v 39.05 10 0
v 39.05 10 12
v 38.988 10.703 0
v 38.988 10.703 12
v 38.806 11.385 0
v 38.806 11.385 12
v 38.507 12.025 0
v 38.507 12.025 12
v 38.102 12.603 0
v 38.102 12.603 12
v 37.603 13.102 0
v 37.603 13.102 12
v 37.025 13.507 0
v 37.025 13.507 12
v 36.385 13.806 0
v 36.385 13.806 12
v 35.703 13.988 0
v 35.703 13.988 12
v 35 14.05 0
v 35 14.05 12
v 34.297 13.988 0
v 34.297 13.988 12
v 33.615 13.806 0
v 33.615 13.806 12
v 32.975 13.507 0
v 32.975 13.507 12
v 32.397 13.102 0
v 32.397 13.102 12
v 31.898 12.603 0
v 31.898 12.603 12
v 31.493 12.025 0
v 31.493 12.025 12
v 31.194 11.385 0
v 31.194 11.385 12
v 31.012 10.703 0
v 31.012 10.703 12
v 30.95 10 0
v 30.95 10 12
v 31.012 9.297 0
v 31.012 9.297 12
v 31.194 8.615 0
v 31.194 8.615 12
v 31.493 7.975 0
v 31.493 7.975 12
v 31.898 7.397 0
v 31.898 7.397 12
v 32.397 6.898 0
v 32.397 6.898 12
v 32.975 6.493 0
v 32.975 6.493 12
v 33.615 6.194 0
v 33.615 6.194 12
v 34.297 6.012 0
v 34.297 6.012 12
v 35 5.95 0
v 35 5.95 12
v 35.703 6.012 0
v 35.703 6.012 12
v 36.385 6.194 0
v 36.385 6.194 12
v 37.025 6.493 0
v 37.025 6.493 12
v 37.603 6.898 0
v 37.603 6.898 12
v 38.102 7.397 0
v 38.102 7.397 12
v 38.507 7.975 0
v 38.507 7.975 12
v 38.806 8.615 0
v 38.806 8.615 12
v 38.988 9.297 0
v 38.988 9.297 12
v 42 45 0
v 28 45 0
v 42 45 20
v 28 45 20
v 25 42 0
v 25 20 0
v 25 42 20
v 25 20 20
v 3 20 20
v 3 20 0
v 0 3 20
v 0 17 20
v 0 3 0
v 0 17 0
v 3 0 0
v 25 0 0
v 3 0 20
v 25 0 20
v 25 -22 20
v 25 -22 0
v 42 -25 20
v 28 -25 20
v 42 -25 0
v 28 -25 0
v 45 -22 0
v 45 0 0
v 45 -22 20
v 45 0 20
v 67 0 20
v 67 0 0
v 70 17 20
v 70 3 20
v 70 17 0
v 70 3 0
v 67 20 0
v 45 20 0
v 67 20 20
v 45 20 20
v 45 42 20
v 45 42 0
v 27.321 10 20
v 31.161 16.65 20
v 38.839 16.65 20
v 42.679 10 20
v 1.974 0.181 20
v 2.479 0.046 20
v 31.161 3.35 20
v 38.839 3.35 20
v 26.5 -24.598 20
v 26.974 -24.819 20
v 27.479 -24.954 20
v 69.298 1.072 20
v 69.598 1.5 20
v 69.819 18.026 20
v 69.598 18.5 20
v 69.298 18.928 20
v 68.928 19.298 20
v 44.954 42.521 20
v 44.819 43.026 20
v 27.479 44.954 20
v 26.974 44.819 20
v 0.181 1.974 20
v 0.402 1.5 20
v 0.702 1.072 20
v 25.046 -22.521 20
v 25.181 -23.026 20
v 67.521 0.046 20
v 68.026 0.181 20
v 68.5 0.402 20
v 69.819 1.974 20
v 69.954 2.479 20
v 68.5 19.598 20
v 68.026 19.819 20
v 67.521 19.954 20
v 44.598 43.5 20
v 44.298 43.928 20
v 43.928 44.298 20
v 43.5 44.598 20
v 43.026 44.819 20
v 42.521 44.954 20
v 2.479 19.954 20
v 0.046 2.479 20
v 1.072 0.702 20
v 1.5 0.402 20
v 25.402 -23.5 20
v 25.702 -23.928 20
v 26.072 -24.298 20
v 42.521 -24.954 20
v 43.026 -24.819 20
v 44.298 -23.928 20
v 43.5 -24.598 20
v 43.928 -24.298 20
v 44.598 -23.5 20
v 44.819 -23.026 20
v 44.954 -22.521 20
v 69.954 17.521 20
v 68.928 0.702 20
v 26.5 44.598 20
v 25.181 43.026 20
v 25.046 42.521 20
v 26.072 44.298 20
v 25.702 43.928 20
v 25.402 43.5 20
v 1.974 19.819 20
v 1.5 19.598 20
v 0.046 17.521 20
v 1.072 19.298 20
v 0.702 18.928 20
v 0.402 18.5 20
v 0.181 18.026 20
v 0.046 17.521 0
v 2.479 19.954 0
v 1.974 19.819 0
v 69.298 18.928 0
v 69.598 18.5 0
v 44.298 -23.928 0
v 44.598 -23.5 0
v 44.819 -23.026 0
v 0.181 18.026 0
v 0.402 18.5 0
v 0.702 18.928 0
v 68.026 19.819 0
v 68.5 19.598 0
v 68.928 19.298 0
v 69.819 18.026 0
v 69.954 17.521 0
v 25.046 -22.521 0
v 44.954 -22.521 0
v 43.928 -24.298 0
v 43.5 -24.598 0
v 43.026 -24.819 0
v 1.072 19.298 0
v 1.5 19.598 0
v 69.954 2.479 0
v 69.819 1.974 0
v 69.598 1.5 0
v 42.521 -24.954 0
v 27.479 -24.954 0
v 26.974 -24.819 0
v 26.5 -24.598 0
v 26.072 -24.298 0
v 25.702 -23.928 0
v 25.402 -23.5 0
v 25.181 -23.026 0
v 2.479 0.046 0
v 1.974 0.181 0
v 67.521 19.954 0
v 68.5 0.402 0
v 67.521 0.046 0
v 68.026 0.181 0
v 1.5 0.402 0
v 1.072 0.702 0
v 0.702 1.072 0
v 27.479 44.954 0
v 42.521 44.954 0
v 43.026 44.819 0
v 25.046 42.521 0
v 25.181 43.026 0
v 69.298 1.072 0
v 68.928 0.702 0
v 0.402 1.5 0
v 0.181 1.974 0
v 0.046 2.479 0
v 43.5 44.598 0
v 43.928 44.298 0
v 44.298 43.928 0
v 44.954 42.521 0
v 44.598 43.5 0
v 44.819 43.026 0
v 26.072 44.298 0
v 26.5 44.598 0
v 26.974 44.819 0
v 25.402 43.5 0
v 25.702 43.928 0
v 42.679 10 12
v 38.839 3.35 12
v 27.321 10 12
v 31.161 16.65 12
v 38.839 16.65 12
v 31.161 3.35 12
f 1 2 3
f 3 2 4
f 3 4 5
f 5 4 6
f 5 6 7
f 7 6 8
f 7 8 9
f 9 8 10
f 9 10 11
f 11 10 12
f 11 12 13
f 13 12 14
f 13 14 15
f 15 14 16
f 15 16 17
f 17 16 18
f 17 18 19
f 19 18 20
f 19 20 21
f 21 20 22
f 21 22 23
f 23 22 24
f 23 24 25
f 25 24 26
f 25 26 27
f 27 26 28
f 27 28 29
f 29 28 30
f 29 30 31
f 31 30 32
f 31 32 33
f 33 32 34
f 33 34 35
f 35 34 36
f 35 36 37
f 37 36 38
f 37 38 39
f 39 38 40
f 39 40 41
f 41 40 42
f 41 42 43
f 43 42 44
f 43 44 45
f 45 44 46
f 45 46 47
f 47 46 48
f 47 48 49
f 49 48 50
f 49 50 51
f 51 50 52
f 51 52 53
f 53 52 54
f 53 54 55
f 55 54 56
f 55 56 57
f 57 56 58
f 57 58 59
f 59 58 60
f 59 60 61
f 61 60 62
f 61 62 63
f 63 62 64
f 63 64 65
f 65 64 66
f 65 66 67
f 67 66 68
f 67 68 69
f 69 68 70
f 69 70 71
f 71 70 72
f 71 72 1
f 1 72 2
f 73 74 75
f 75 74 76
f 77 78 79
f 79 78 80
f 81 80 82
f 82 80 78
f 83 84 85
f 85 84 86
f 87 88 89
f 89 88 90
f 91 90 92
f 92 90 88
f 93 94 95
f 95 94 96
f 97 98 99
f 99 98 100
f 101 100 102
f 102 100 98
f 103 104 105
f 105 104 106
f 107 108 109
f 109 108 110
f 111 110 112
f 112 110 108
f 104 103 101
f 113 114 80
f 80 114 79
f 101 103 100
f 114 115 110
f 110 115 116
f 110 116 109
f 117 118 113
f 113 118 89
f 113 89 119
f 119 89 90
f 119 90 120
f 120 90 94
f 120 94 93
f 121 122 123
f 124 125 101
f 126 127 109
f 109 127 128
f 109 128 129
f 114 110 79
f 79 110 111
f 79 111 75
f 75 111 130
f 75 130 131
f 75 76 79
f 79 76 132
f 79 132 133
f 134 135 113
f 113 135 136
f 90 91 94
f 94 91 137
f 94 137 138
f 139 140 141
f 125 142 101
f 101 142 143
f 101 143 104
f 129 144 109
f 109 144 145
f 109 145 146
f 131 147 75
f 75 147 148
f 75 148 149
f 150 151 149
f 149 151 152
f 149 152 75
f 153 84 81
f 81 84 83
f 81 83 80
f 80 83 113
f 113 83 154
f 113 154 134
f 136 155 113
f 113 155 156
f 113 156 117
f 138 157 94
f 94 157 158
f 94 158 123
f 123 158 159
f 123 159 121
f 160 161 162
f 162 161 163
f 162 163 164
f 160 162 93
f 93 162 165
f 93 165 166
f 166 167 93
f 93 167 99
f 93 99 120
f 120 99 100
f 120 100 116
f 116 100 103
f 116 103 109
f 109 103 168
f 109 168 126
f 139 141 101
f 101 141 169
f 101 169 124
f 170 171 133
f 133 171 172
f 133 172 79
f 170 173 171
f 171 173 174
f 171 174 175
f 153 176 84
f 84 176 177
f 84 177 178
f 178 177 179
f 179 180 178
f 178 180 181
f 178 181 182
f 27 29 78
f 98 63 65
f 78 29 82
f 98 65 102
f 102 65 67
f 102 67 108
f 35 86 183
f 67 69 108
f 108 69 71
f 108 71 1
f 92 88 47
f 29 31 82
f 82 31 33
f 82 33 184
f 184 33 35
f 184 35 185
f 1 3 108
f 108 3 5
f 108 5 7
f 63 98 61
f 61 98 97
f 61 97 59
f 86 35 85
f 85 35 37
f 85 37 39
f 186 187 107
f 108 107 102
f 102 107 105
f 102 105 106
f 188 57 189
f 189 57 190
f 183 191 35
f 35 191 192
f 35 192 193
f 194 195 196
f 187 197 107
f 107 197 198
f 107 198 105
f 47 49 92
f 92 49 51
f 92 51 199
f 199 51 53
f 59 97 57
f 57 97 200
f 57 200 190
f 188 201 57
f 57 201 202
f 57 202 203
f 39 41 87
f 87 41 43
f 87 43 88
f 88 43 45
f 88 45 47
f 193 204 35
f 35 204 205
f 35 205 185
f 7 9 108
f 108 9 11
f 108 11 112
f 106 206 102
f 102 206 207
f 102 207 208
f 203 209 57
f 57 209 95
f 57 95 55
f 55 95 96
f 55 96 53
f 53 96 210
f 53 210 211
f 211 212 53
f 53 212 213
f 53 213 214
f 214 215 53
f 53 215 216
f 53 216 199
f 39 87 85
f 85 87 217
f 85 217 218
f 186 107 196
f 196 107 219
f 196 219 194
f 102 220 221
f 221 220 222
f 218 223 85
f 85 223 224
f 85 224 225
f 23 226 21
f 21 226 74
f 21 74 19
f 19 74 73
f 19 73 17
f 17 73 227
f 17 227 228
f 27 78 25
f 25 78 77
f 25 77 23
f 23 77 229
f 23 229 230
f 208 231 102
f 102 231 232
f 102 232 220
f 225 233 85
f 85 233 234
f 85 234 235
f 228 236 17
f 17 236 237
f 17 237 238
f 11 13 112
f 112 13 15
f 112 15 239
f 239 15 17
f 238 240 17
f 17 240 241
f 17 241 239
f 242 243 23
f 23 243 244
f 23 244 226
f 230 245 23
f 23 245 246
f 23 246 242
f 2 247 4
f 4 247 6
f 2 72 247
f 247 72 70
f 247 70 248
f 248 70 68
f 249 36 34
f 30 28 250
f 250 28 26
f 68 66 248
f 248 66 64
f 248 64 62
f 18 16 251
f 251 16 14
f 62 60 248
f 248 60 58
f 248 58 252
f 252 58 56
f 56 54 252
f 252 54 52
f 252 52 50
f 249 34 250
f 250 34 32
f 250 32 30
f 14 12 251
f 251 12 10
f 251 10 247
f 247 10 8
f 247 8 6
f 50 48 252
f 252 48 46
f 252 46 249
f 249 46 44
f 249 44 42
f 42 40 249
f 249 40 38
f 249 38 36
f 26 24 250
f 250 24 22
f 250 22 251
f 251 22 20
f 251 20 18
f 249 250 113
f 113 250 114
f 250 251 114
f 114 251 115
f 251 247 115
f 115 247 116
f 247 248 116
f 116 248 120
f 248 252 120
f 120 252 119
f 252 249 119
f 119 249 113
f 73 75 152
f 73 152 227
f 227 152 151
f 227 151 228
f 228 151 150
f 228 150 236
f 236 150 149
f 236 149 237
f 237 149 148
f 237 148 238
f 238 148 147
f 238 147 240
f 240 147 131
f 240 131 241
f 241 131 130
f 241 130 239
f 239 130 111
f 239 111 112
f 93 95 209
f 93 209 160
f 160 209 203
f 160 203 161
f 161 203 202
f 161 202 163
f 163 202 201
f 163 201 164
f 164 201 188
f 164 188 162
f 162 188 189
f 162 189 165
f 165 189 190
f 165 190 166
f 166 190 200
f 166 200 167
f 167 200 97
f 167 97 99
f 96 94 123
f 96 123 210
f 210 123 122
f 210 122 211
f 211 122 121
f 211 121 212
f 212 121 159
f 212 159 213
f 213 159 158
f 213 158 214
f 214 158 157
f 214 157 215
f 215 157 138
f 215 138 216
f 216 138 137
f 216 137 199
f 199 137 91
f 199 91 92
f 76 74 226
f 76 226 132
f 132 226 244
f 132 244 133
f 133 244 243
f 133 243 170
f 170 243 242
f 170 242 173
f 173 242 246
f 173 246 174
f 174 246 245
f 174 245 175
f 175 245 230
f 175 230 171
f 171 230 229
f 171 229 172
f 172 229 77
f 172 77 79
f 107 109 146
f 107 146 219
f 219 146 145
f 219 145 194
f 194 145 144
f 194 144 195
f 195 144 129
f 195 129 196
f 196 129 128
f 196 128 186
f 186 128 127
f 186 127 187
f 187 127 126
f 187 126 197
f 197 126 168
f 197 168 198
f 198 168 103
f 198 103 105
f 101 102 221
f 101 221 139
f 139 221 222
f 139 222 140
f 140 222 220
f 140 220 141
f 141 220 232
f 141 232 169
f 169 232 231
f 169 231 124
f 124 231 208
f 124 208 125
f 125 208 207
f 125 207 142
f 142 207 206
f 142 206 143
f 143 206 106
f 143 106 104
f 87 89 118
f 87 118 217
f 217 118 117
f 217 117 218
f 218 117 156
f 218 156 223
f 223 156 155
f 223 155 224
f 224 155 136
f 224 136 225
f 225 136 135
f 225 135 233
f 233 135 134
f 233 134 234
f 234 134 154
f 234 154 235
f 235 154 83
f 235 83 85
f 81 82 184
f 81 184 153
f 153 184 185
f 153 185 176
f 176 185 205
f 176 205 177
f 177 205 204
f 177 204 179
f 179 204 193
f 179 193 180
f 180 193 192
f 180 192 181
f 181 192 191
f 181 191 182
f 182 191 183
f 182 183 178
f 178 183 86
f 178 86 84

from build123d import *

# Parameters (mm, degrees)
ESQUISSE1_W             = 20
ESQUISSE1_H             = 25
ESQUISSE1_H_2           = 20
ESQUISSE1_W_2           = 25
BOSS_EXTRU_1_DEPTH      = 20
ENL_V_MAT_EXTRU_1_REACH = 87.586
ESQUISSE2_R             = 4.05
ENL_V_MAT_EXTRU_3_DEPTH = 8
CONG_1_R                = 3


with BuildPart() as part:
    # Esquisse1 → Boss.-Extru.1 (new body)
    with BuildSketch(Plane.XY):
        with Locations((35, 32.5)):
            Rectangle(ESQUISSE1_W, ESQUISSE1_H)
        with Locations((35, 10)):
            Rectangle(ESQUISSE1_W, ESQUISSE1_H_2)
        with Locations((12.5, 10)):
            Rectangle(ESQUISSE1_W_2, ESQUISSE1_H_2)
        with Locations((35, -12.5)):
            Rectangle(ESQUISSE1_W, ESQUISSE1_H)
        with Locations((57.5, 10)):
            Rectangle(ESQUISSE1_W_2, ESQUISSE1_H_2)
    extrude(amount=BOSS_EXTRU_1_DEPTH)

    # Esquisse2 → Enlèv. mat.-Extru.1 (cut, up to next)
    with BuildSketch(Plane.XY.offset(20), mode=Mode.PRIVATE) as enl_v_mat_extru_1_sk1:
        with Locations((35, 10)):
            Circle(ESQUISSE2_R)
    enl_v_mat_extru_1_tool1 = extrude(enl_v_mat_extru_1_sk1.sketch, amount=-ENL_V_MAT_EXTRU_1_REACH, mode=Mode.PRIVATE) & part.part
    add(enl_v_mat_extru_1_tool1.solids().sort_by_distance((35, 10, 20))[0], mode=Mode.SUBTRACT)

    # Esquisse4 → Enlèv. mat.-Extru.3 (cut)
    with BuildSketch(Plane.XY.offset(20)):
        Polygon((27.32124142, 10), (31.16062071, 3.35), (38.83937929, 3.35), (42.67875858, 10), (38.83937929, 16.65), (31.16062071, 16.65), align=None)
    extrude(amount=-ENL_V_MAT_EXTRU_3_DEPTH, mode=Mode.SUBTRACT)

    # Congé1
    cong_1_edges = [part.edges().sort_by_distance(p)[0] for p in [
        (45, 45, 10),
        (70, 20, 10),
        (70, 0, 10),
        (45, -25, 10),
        (25, -25, 10),
        (0, 0, 10),
        (0, 20, 10),
        (25, 45, 10),
    ]]
    fillet(cong_1_edges, radius=CONG_1_R)


solid = part.part
